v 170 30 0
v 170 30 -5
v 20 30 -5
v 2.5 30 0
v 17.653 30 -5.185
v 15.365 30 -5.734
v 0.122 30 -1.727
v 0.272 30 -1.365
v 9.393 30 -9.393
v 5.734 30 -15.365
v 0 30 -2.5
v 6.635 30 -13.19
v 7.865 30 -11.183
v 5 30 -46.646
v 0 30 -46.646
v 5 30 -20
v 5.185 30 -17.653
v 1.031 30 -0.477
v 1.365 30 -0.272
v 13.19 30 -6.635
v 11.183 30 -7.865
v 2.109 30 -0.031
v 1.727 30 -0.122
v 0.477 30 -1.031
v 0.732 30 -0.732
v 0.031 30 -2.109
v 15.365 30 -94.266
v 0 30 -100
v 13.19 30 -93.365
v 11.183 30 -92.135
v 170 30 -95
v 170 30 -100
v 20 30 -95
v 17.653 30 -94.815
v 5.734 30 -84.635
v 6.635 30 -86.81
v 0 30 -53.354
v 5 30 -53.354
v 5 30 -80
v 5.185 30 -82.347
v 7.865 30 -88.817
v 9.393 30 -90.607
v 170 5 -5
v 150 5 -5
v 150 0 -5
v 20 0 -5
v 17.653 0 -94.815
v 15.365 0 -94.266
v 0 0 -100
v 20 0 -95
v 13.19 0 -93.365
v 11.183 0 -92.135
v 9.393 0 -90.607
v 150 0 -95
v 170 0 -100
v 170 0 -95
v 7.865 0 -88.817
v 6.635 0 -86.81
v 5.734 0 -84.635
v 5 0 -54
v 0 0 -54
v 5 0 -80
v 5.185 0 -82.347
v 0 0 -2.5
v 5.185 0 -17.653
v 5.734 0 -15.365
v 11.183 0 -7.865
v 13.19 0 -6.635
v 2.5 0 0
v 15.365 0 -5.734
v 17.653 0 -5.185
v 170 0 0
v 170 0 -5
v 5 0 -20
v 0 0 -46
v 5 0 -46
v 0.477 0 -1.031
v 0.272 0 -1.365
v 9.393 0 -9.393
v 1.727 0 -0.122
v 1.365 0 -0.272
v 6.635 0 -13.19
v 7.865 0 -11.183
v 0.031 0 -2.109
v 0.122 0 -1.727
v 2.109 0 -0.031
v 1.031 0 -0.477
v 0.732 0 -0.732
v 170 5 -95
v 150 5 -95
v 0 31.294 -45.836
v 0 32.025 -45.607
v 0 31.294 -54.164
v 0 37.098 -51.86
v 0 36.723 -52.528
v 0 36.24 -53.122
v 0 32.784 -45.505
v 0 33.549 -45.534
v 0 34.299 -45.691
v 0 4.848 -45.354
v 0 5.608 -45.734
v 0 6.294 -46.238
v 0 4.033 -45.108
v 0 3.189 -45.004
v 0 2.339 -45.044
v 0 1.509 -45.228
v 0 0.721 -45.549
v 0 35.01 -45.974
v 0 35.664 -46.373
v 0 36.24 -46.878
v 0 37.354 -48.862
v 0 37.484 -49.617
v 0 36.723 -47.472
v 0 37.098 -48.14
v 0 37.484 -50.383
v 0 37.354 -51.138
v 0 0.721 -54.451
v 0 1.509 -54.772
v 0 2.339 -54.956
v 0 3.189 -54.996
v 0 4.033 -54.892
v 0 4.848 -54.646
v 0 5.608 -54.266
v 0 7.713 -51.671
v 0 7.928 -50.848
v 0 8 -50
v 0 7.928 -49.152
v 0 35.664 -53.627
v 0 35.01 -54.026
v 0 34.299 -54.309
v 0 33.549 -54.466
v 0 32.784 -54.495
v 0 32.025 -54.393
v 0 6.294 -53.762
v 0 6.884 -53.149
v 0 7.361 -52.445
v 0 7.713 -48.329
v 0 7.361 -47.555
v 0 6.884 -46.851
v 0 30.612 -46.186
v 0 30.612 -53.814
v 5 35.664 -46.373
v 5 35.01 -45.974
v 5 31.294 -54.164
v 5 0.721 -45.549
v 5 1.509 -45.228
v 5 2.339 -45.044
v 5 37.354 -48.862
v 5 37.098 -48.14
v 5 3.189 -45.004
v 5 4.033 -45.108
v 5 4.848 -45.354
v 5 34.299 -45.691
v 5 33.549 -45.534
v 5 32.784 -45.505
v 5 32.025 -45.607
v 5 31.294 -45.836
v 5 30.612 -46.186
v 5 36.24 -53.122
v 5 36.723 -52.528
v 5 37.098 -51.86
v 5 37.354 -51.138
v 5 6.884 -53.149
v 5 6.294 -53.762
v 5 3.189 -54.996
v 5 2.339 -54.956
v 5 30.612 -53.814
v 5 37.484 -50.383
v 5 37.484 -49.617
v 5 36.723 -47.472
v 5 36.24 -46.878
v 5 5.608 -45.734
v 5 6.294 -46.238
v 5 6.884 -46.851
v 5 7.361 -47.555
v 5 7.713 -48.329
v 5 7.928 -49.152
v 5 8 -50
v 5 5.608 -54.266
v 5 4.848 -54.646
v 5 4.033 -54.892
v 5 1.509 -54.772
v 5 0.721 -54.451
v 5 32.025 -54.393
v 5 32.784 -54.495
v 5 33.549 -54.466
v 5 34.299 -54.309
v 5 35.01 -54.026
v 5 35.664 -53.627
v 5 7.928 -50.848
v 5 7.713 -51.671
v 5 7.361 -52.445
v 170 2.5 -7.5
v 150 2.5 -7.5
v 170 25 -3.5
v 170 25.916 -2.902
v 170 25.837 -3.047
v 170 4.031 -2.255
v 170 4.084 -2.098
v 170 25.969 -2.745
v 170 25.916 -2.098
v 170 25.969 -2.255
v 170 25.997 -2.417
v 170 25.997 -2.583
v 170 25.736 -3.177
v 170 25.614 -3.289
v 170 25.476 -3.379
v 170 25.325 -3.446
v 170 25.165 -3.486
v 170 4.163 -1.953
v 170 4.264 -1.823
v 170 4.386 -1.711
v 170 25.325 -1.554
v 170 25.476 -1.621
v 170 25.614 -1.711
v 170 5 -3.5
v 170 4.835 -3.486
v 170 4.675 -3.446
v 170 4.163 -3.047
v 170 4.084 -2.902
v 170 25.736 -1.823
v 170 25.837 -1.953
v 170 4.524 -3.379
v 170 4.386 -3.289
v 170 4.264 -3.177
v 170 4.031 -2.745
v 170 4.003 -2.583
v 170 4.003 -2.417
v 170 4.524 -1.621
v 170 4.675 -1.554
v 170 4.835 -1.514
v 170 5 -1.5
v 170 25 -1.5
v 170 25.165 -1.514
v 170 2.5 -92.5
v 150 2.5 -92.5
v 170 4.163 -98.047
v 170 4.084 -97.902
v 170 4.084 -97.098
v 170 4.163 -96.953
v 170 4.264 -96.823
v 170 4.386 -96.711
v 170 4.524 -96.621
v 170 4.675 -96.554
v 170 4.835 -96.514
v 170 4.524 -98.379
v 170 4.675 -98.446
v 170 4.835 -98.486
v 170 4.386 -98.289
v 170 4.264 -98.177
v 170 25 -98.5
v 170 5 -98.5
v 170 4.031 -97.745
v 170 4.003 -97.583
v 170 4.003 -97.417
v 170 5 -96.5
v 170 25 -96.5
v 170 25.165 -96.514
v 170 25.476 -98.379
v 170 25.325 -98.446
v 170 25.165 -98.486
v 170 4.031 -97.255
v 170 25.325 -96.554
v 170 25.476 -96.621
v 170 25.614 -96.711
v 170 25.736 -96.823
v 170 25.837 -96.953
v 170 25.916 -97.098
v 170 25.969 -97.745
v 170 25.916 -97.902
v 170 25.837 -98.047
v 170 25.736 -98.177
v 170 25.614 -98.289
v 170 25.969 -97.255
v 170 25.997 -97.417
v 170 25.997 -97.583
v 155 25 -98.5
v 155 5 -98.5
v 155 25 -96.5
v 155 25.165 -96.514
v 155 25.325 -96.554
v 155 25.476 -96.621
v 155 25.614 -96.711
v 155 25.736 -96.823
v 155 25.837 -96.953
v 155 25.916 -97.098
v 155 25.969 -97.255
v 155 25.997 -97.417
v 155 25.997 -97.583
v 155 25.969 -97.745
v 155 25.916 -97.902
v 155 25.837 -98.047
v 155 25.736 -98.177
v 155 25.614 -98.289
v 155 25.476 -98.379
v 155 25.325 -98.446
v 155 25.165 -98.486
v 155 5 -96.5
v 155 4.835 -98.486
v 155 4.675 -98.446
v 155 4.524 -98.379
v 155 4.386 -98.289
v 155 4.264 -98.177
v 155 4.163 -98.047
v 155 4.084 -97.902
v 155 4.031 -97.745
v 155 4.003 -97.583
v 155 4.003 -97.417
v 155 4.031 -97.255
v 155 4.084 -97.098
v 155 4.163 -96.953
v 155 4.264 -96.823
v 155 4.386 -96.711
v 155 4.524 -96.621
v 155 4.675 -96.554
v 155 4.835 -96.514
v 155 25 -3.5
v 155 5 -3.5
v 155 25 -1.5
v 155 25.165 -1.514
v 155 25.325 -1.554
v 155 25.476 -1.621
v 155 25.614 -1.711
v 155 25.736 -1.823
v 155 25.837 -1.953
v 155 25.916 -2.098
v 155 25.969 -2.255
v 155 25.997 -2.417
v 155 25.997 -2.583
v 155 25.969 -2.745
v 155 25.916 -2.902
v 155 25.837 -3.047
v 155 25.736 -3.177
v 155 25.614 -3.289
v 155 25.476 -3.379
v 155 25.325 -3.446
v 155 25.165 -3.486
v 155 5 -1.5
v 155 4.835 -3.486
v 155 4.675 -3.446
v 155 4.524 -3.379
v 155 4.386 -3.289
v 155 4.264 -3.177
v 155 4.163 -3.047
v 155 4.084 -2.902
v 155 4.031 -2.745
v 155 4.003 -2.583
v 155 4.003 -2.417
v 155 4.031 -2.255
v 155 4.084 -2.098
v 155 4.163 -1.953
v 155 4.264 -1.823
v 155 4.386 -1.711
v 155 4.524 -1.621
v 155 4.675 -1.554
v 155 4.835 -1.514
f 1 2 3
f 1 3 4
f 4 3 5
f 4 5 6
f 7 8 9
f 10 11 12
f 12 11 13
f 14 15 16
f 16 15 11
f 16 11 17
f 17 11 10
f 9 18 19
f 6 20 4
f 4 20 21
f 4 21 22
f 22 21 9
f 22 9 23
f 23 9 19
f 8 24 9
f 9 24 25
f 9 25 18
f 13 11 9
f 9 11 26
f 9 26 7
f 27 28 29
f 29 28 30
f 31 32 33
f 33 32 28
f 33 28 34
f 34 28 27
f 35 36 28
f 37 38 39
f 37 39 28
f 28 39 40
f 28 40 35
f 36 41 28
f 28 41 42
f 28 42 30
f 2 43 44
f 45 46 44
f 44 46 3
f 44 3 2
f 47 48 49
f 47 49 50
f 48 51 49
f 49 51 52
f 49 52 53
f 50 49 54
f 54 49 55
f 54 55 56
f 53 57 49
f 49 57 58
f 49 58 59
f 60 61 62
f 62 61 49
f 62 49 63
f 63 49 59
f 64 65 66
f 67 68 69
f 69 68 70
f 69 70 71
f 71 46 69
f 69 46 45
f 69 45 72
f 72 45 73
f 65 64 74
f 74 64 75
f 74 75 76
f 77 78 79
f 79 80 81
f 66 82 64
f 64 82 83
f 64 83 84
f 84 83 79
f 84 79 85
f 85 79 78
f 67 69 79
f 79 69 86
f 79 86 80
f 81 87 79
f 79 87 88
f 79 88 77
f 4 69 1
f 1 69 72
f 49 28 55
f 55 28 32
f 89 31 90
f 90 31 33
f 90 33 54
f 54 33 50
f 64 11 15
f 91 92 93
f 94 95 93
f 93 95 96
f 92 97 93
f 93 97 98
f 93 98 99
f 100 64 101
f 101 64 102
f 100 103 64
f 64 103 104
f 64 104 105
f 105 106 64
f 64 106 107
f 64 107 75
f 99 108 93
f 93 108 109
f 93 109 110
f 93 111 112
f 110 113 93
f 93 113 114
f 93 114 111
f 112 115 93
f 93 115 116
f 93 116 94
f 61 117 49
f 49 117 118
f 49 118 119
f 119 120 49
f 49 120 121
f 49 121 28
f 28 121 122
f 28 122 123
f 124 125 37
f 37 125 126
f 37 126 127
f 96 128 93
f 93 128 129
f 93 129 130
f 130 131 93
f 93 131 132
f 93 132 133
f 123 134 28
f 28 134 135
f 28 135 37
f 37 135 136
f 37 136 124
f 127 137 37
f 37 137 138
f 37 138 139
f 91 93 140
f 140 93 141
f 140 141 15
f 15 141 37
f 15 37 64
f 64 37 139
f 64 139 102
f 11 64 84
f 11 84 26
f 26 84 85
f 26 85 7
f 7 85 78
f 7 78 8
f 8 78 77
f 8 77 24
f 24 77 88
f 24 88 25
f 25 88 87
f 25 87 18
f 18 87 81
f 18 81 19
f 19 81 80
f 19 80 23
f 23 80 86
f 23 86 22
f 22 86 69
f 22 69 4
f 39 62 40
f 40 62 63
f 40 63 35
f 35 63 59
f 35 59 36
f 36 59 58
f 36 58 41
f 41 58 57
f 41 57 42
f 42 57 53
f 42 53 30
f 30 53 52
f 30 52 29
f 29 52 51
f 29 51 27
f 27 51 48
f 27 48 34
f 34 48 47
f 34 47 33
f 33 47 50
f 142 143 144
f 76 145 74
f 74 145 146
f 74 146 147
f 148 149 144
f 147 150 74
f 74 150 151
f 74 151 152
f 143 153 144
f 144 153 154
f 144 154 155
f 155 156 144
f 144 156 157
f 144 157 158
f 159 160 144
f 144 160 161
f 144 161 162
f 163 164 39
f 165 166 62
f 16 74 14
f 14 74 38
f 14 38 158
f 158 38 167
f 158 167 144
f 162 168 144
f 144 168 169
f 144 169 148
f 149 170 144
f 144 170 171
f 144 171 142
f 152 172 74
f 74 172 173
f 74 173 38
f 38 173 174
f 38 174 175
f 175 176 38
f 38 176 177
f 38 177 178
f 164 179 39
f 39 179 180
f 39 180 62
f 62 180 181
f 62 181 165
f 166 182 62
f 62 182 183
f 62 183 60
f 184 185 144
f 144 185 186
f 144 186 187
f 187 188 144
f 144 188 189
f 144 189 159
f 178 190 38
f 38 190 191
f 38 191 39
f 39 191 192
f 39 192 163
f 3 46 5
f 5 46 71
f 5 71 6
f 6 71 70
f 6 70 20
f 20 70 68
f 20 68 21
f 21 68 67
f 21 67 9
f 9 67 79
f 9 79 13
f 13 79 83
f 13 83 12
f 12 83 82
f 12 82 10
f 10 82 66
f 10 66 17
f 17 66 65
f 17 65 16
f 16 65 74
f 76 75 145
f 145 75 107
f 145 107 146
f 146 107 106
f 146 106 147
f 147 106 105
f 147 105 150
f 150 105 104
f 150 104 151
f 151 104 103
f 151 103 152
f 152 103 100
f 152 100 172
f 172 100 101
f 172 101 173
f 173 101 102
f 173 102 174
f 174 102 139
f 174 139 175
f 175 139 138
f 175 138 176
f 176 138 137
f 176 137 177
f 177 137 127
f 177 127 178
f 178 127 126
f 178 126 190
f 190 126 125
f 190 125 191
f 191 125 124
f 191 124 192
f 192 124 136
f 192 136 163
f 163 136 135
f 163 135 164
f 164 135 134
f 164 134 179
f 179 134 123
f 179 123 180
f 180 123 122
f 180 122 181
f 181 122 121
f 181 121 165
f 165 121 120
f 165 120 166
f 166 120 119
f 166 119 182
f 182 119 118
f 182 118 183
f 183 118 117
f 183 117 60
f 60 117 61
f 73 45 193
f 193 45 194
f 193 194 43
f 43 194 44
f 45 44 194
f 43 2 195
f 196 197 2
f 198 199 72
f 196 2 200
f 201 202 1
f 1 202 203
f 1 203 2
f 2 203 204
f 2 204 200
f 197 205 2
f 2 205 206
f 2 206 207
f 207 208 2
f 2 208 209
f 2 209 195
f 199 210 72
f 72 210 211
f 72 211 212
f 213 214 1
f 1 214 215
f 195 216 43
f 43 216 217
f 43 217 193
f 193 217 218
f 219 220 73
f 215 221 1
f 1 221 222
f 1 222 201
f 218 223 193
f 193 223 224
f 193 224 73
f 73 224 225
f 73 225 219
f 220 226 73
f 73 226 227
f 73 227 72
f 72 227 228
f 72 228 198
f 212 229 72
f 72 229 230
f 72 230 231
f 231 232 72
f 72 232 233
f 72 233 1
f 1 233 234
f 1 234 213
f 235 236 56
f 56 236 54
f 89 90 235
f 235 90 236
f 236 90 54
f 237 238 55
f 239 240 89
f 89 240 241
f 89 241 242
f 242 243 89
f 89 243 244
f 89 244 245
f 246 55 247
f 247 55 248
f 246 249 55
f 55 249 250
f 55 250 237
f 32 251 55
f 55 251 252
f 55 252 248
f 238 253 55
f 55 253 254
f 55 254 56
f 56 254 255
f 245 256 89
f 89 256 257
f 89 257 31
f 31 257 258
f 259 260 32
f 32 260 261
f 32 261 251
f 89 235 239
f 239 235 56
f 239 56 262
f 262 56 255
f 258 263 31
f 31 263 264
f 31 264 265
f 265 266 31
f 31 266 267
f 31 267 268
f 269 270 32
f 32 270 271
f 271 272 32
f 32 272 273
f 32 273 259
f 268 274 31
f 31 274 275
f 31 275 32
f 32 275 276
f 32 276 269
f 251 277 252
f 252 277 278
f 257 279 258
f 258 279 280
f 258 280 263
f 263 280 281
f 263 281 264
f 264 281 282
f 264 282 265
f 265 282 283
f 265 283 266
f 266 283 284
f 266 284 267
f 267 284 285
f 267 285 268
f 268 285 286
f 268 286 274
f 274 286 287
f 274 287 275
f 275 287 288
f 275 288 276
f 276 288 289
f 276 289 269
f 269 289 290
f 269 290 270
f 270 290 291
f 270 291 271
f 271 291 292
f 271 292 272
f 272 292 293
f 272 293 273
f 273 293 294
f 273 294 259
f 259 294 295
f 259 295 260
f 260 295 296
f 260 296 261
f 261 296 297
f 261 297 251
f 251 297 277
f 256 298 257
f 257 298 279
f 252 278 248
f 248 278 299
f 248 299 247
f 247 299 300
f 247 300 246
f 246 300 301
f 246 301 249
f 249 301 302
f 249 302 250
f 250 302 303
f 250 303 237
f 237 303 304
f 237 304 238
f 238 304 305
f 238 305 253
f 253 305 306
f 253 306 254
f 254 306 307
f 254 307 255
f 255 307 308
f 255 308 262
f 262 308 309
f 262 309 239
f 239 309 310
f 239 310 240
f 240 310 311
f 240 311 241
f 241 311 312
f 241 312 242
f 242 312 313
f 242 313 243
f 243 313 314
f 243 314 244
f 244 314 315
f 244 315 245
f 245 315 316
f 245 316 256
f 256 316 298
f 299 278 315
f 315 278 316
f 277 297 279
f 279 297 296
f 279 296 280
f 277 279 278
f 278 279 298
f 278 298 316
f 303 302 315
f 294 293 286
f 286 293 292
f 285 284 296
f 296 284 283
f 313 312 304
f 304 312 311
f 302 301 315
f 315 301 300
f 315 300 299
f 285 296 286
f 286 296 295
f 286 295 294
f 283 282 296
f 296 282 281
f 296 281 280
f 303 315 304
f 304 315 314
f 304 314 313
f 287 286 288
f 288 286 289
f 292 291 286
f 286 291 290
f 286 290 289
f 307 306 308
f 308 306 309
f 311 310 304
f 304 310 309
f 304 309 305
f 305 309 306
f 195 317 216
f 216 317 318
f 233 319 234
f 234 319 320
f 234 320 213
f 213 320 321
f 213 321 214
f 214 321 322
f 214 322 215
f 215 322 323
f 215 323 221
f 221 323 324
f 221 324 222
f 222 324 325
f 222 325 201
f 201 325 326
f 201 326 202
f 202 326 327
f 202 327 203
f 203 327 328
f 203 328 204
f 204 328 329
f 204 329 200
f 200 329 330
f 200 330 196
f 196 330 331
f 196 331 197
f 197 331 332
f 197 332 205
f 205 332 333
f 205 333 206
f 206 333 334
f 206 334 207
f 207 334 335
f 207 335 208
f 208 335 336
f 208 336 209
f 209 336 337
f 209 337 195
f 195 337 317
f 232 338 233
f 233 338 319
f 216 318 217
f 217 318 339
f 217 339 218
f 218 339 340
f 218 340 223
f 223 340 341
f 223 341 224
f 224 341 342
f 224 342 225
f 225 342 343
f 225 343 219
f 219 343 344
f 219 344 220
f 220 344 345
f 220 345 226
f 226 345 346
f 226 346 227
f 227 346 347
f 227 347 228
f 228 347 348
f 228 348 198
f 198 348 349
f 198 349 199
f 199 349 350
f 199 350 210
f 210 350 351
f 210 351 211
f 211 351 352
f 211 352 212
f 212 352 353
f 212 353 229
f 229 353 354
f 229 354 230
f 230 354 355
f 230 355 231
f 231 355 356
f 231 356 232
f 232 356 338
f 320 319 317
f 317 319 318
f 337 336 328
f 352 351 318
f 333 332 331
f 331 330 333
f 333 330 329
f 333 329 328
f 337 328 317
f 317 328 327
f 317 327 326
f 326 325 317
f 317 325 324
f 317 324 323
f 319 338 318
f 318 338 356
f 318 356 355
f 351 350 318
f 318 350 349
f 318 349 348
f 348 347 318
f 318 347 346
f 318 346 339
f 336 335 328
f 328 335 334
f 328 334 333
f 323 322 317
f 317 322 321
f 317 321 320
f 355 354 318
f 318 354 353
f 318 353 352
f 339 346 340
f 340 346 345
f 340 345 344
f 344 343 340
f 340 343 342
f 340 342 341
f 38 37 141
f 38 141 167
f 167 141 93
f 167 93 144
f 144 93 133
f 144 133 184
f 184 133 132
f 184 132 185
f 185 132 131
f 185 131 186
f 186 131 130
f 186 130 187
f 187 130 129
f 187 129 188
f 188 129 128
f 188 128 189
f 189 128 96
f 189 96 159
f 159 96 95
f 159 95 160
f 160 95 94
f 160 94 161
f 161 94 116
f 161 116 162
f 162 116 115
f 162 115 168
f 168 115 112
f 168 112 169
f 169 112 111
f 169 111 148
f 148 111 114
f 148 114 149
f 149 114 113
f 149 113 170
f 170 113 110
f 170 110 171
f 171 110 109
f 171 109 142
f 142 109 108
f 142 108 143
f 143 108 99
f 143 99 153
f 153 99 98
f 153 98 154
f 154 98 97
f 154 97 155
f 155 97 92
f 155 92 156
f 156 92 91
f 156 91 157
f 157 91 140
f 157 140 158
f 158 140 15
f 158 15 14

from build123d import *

# Parameters (mm, degrees)
BOSS_EXTRUDE1_DEPTH      = 30
SKETCH2_R                = 5
CUT_EXTRUDE1_DEPTH       = 30
BOSS_EXTRUDE2_DEPTH      = 10
BOSS_EXTRUDE2_DEPTH_BACK = 10
SKETCH4_W                = 159.060966422
SKETCH4_H                = 100
CUT_EXTRUDE2_DEPTH       = 55
CUT_EXTRUDE3_DEPTH       = 10
CUT_EXTRUDE3_DEPTH_BACK  = 5
SKETCH6_R                = 4.5
BOSS_EXTRUDE3_DEPTH      = 5


with BuildPart() as part:
    # Sketch1 → Boss-Extrude1 (new body)
    with BuildSketch(Plane(origin=(0, 0, 0), x_dir=(1, 0, 0), z_dir=(0, 1, 0))):
        with BuildLine():
            Line((2.5, 100), (0, 100))
            Line((0, 100), (0, 97.5))
            Line((0, 97.5), (0, 2.5))
            ThreePointArc((0, 2.5), (0.732233047, 0.732233047), (2.5, 0))
            Line((2.5, 0), (305, 0))
            ThreePointArc((305, 0), (315.606601718, 4.393398282), (320, 15))
            Line((320, 15), (320, 85))
            ThreePointArc((320, 85), (315.606601718, 95.606601718), (305, 100))
            Line((305, 100), (2.5, 100))
        make_face()
        with BuildLine():
            Line((20, 95), (300, 95))
            ThreePointArc((300, 95), (310.606601718, 90.606601718), (315, 80))
            Line((315, 80), (315, 20))
            ThreePointArc((315, 20), (310.606601718, 9.393398282), (300, 5))
            Line((300, 5), (20, 5))
            ThreePointArc((20, 5), (9.393398282, 9.393398282), (5, 20))
            Line((5, 20), (5, 80))
            ThreePointArc((5, 80), (9.393398282, 90.606601718), (20, 95))
        make_face(mode=Mode.SUBTRACT)
    extrude(amount=BOSS_EXTRUDE1_DEPTH)

    # Sketch2 → Cut-Extrude1 (cut)
    with BuildSketch(Plane(origin=(0, 0, 0), x_dir=(0, 0, -1), z_dir=(1, 0, 0))):
        with Locations((50, 3)):
            Circle(SKETCH2_R)
    extrude(amount=CUT_EXTRUDE1_DEPTH, mode=Mode.SUBTRACT)

    # Sketch3 → Boss-Extrude2 (add, two sides: drawn at the far end of the back side and taken through both)
    with BuildSketch(Plane(origin=(160, 0, 0), x_dir=(0, 0, -1), z_dir=(1, 0, 0)).offset(-BOSS_EXTRUDE2_DEPTH_BACK)):
        Polygon((5, 0), (5, 5), (7.5, 2.5), align=None)
        Polygon((95, 0), (95, 5), (92.5, 2.5), align=None)
    extrude(amount=BOSS_EXTRUDE2_DEPTH + BOSS_EXTRUDE2_DEPTH_BACK)

    # Sketch4 → Cut-Extrude2 (cut)
    with BuildSketch(Plane(origin=(0, 0, 0), x_dir=(1, 0, 0), z_dir=(0, 1, 0))):
        with Locations((249.530483211, 50)):
            Rectangle(SKETCH4_W, SKETCH4_H)
    extrude(amount=CUT_EXTRUDE2_DEPTH, mode=Mode.SUBTRACT)

    # Sketch5 → Cut-Extrude3 (cut, two sides: drawn at the far end of the back side and taken through both)
    with BuildSketch(Plane(origin=(160, 0, 0), x_dir=(0, 0, -1), z_dir=(1, 0, 0)).offset(-CUT_EXTRUDE3_DEPTH_BACK)):
        with BuildLine():
            ThreePointArc((3.5, 25), (3.207106781, 25.707106781), (2.5, 26))
            Line((2.5, 26), (2.5, 4))
            ThreePointArc((2.5, 4), (3.207106781, 4.292893219), (3.5, 5))
            Line((3.5, 5), (3.5, 25))
        make_face()
        with BuildLine():
            Line((2.5, 4), (2.5, 26))
            ThreePointArc((2.5, 26), (1.792893219, 25.707106781), (1.5, 25))
            Line((1.5, 25), (1.5, 5))
            ThreePointArc((1.5, 5), (1.792893219, 4.292893219), (2.5, 4))
        make_face()
        with BuildLine():
            ThreePointArc((98.5, 25), (98.207106781, 25.707106781), (97.5, 26))
            Line((97.5, 26), (97.5, 4))
            ThreePointArc((97.5, 4), (98.207106781, 4.292893219), (98.5, 5))
            Line((98.5, 5), (98.5, 25))
        make_face()
        with BuildLine():
            Line((97.5, 4), (97.5, 26))
            ThreePointArc((97.5, 26), (96.792893219, 25.707106781), (96.5, 25))
            Line((96.5, 25), (96.5, 5))
            ThreePointArc((96.5, 5), (96.792893219, 4.292893219), (97.5, 4))
        make_face()
    extrude(amount=CUT_EXTRUDE3_DEPTH + CUT_EXTRUDE3_DEPTH_BACK, mode=Mode.SUBTRACT)

    # Sketch6 → Boss-Extrude3 (add)
    with BuildSketch(Plane(origin=(0, 0, 0), x_dir=(0, 0, -1), z_dir=(1, 0, 0))):
        with Locations((50, 33)):
            Circle(SKETCH6_R)
    extrude(amount=BOSS_EXTRUDE3_DEPTH)


solid = part.part
